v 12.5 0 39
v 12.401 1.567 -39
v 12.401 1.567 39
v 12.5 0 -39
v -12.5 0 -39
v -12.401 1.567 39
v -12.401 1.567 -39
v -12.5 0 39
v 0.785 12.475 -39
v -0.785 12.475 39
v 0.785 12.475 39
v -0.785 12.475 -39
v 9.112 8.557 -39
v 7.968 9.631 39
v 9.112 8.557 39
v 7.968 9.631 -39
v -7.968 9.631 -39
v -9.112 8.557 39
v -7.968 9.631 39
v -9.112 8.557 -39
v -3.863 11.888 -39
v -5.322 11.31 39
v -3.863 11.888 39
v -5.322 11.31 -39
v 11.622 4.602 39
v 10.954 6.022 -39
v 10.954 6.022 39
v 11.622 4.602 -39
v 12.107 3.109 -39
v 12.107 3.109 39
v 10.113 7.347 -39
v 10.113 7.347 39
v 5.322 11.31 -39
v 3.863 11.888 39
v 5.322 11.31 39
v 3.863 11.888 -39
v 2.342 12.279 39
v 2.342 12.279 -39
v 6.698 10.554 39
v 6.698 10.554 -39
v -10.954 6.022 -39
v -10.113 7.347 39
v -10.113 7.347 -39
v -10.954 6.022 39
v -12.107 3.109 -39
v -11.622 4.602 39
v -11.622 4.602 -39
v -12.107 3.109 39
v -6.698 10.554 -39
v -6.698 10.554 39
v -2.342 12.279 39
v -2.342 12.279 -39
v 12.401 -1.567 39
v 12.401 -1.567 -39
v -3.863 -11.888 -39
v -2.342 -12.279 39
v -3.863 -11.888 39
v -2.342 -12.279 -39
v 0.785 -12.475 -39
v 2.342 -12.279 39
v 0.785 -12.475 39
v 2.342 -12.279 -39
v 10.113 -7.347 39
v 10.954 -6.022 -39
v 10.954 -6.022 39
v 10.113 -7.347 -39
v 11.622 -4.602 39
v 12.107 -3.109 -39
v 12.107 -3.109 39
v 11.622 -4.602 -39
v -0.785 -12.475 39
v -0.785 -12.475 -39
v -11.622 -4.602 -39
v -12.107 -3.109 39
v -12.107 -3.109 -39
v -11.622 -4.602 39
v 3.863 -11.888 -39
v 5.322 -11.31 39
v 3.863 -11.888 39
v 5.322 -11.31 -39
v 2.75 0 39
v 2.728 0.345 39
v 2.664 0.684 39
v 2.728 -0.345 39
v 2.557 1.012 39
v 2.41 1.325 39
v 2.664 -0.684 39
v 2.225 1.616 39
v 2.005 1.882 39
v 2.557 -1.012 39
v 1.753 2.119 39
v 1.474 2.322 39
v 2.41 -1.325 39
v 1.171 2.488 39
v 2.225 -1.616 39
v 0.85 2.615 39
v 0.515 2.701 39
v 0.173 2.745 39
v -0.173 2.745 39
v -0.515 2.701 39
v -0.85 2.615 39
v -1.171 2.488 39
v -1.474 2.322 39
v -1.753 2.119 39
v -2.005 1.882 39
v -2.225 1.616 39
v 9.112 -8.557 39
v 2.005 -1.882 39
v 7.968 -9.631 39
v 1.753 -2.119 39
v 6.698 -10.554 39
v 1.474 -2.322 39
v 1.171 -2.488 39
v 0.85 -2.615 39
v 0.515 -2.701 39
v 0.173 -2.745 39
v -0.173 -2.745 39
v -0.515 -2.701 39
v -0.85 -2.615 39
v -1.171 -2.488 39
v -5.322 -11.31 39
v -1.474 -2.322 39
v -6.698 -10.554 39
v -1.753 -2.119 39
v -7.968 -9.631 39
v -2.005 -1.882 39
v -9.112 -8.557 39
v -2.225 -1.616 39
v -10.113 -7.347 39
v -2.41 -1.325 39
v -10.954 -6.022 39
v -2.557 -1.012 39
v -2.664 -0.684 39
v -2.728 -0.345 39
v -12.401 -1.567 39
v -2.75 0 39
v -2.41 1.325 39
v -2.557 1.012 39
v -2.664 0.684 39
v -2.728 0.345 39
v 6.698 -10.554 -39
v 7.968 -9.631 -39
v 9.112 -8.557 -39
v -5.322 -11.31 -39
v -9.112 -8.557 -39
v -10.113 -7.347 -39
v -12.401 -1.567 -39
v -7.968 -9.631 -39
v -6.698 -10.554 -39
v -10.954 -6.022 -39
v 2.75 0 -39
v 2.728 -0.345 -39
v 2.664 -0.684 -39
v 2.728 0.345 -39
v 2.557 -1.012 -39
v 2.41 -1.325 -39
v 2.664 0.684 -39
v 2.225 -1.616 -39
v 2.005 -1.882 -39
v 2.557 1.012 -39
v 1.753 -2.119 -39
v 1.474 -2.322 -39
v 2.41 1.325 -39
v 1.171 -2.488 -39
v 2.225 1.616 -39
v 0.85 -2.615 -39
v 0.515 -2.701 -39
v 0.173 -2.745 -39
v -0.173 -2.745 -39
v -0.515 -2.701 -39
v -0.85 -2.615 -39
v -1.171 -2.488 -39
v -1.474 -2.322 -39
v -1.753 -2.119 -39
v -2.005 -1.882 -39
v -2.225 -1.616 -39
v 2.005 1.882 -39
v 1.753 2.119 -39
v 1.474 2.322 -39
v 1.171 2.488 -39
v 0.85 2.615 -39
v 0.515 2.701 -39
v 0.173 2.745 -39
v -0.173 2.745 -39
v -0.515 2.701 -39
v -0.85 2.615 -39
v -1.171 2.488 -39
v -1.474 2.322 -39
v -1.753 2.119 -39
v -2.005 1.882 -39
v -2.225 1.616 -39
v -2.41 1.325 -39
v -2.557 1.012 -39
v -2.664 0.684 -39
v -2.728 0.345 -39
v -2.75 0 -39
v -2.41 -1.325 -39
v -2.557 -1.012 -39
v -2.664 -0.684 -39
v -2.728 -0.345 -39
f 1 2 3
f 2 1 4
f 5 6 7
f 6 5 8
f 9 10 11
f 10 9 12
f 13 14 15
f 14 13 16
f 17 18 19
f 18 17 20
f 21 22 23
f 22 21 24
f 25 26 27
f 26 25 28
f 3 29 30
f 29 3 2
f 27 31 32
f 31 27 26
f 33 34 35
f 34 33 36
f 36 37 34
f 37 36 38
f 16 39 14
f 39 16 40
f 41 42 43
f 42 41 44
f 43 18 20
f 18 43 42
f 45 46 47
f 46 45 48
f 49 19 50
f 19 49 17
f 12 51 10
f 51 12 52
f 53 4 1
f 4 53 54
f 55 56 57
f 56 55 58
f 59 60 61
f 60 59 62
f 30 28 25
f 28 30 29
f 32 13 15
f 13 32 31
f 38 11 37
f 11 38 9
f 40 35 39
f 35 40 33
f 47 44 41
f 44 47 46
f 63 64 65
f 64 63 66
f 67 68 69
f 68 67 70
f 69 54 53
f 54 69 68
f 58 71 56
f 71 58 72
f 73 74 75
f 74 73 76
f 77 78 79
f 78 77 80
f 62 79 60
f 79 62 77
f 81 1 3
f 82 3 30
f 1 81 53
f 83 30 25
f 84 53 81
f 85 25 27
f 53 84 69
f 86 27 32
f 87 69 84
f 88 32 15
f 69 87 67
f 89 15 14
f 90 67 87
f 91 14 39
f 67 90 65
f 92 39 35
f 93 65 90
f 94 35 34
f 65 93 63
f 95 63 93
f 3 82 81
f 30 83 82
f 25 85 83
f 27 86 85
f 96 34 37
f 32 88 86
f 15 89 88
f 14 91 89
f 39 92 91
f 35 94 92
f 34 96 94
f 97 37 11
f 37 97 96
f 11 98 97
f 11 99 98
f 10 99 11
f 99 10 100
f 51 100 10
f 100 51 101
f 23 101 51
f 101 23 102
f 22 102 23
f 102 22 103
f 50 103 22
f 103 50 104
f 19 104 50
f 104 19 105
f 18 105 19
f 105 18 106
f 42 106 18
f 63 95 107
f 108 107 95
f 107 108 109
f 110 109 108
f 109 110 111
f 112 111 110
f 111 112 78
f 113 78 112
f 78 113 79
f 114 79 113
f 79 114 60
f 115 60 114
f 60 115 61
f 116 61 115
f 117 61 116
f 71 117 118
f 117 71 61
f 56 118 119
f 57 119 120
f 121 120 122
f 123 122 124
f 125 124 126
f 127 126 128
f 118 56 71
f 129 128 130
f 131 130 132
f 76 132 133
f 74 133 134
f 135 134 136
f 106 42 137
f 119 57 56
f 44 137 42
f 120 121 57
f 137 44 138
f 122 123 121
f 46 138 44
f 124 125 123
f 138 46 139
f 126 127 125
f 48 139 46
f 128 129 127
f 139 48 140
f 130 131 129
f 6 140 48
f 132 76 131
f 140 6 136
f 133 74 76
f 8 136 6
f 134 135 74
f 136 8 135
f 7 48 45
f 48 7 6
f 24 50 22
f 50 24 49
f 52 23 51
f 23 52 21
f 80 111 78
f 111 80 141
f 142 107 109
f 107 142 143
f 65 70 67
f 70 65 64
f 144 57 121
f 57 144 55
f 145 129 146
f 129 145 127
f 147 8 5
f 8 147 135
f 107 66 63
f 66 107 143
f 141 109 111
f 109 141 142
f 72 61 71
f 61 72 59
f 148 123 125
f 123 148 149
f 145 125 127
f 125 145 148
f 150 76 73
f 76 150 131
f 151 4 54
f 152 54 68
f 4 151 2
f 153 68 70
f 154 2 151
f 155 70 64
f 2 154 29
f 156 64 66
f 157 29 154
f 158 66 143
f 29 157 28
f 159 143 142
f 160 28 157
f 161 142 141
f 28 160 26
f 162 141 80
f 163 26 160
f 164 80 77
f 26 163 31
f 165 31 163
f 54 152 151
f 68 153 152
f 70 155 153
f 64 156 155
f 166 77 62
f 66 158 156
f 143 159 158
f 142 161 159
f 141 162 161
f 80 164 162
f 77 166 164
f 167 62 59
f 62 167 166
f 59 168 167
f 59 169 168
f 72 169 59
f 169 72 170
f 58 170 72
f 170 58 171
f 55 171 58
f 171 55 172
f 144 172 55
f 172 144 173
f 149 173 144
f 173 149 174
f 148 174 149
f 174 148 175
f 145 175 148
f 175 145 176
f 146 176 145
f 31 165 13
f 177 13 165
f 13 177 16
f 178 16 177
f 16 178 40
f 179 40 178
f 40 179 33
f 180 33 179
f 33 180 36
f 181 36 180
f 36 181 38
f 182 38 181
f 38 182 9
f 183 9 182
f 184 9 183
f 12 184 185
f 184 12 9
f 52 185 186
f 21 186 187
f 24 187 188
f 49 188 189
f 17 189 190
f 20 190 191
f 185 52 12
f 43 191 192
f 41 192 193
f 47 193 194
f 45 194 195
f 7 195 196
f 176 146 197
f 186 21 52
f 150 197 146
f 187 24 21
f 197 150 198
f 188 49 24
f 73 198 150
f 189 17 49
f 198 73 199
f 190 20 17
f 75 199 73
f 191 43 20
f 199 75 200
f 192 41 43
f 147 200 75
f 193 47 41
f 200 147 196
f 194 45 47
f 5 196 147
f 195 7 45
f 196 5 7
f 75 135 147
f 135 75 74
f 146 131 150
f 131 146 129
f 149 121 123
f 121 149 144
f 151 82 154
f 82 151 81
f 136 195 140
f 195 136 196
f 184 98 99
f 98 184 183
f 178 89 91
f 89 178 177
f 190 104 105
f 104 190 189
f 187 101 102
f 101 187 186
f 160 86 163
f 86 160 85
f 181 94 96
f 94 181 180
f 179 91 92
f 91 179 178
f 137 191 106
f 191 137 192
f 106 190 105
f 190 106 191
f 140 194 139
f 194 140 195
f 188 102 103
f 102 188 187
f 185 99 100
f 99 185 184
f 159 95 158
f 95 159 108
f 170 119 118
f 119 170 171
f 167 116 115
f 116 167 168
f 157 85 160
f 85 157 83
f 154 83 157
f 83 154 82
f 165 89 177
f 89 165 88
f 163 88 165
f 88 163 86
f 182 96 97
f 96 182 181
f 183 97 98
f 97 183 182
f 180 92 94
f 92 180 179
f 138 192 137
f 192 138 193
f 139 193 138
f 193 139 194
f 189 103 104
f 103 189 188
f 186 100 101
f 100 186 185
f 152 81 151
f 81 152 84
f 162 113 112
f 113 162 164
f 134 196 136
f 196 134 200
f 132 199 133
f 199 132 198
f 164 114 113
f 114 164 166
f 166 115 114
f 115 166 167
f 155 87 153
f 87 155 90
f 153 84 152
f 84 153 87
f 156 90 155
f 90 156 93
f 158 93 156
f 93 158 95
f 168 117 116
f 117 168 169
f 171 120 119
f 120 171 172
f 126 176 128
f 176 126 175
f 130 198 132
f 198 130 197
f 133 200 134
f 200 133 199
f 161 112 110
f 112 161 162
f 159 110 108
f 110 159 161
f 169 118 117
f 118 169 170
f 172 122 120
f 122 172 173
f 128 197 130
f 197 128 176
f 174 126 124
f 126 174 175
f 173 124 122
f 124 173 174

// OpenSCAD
$fn = 50;


difference() {
	union() {
		translate(v = [0, 0, -39.0000000000]) {
			cylinder(h = 78, r = 12.5000000000);
		}
	}
	union() {
		translate(v = [0, 0, -100.0000000000]) {
			cylinder(h = 200, r = 2.7500000000);
		}
	}
}
